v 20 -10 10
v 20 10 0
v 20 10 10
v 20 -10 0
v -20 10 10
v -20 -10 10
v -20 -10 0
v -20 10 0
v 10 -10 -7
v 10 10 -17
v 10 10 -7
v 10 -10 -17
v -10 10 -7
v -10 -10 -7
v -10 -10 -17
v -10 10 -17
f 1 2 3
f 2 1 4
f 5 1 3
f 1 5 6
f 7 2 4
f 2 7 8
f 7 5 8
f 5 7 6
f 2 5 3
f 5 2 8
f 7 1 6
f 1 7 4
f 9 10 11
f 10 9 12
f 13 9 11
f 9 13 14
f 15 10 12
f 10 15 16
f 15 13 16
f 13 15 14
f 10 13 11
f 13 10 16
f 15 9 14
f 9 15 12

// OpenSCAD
// Define dimensions for the components
large_block_length = 40;  // Length of the large rectangular block
large_block_width = 20;   // Width of the large rectangular block
large_block_height = 10;  // Height of the large rectangular block

small_block_length = 20;  // Length of the small rectangular block
small_block_width = 20;   // Width of the small rectangular block
small_block_height = 10;  // Height of the small rectangular block

// Define the positional relationship between components
gap_between_blocks = 2;  // Adjusted vertical gap between the two blocks

// Layer 1: Large rectangular block
module rectangular_block_large() {
    cube([large_block_length, large_block_width, large_block_height], center = true);
}

// Layer 2: Small rectangular block
module rectangular_block_small() {
    cube([small_block_length, small_block_width, small_block_height], center = true);
}

// Assemble the model
module assembly() {
    // Position the large block at the top, aligned horizontally
    translate([0, 0, large_block_height / 2])
        rectangular_block_large();

    // Position the small block closer to the large block, aligned parallel to it
    translate([0, 0, -large_block_height / 2 - gap_between_blocks - small_block_height / 2])
        rectangular_block_small();
}

// Render the assembly
assembly();
